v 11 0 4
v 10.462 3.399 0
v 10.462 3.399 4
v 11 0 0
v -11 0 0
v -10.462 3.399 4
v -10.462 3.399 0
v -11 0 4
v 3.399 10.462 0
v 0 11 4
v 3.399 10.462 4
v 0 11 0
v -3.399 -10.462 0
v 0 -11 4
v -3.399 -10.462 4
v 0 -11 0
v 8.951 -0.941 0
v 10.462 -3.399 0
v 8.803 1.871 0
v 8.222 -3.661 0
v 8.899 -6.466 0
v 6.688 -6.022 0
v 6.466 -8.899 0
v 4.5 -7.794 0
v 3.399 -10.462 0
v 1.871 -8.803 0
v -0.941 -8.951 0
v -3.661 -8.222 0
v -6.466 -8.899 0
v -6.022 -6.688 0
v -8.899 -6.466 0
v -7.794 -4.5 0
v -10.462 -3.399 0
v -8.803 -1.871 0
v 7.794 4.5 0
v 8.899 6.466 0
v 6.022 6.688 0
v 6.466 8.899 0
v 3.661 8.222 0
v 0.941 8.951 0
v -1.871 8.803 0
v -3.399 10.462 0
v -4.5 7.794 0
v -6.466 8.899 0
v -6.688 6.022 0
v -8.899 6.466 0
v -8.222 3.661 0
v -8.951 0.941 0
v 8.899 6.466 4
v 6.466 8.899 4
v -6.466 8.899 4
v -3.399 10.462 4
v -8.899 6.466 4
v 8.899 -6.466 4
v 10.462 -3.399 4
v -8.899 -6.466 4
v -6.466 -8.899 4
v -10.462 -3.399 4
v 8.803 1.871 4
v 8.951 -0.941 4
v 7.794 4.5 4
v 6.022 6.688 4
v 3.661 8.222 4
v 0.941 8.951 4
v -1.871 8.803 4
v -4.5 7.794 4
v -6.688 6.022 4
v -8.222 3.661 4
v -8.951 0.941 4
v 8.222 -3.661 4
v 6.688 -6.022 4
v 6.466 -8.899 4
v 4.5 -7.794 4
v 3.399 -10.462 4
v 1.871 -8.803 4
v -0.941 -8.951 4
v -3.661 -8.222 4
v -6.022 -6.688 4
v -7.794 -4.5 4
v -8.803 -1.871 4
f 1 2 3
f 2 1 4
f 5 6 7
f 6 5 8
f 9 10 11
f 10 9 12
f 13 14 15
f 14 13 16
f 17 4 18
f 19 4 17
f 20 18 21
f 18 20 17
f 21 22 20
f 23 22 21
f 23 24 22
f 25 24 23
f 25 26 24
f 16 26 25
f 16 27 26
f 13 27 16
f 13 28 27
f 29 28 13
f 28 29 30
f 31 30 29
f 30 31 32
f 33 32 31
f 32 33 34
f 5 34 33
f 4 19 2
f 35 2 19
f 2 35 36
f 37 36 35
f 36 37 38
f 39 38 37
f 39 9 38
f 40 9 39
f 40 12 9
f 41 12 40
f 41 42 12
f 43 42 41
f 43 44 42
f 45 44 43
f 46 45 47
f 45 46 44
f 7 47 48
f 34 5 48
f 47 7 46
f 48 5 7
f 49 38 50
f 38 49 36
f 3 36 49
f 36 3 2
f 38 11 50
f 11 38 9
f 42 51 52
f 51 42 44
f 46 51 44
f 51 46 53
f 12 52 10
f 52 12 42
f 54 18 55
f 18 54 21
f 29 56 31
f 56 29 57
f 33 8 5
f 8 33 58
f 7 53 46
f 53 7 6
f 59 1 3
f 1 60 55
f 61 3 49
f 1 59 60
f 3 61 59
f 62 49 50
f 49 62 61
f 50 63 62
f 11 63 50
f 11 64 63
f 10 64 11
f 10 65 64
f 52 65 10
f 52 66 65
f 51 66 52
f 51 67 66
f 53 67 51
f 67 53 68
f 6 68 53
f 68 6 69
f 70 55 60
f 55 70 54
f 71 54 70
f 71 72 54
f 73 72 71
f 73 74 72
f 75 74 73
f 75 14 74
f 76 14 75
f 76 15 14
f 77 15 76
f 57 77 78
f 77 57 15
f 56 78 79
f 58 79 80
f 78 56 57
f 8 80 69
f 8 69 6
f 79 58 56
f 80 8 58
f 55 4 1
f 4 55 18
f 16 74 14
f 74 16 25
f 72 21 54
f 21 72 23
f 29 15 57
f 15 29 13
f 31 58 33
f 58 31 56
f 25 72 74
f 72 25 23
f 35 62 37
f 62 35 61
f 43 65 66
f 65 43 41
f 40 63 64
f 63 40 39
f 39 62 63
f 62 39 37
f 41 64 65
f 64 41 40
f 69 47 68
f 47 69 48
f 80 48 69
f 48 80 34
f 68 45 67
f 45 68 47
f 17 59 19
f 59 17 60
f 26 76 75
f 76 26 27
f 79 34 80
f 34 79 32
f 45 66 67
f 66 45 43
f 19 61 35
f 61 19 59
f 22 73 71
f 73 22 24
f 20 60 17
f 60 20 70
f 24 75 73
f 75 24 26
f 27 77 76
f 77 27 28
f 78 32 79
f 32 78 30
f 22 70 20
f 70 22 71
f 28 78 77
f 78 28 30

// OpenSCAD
$fn = 20;
difference() {
	cylinder(r=11, h=4);
	 rotate([0, 0, 30]) cylinder(r=9, h=12);
}
